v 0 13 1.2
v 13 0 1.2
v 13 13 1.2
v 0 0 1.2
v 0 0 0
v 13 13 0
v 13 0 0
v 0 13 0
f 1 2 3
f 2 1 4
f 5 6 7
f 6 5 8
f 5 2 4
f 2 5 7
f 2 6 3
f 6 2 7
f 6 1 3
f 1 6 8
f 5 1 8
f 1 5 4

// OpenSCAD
/* Warning, this is a very basic generator with a lot of approximation 
input data : [TFBGA, AFA, 13x13x1.2mm, 168, , B, C04-01191B]
generated by com.zoubworld.electronics.cad.model3d.Basic
Date : Sun Feb 15 10:50:49 CET 2026
*/

//body
color("black")
translate([0,0,0])
cube([13.0,13.0,1.2], center=false);
